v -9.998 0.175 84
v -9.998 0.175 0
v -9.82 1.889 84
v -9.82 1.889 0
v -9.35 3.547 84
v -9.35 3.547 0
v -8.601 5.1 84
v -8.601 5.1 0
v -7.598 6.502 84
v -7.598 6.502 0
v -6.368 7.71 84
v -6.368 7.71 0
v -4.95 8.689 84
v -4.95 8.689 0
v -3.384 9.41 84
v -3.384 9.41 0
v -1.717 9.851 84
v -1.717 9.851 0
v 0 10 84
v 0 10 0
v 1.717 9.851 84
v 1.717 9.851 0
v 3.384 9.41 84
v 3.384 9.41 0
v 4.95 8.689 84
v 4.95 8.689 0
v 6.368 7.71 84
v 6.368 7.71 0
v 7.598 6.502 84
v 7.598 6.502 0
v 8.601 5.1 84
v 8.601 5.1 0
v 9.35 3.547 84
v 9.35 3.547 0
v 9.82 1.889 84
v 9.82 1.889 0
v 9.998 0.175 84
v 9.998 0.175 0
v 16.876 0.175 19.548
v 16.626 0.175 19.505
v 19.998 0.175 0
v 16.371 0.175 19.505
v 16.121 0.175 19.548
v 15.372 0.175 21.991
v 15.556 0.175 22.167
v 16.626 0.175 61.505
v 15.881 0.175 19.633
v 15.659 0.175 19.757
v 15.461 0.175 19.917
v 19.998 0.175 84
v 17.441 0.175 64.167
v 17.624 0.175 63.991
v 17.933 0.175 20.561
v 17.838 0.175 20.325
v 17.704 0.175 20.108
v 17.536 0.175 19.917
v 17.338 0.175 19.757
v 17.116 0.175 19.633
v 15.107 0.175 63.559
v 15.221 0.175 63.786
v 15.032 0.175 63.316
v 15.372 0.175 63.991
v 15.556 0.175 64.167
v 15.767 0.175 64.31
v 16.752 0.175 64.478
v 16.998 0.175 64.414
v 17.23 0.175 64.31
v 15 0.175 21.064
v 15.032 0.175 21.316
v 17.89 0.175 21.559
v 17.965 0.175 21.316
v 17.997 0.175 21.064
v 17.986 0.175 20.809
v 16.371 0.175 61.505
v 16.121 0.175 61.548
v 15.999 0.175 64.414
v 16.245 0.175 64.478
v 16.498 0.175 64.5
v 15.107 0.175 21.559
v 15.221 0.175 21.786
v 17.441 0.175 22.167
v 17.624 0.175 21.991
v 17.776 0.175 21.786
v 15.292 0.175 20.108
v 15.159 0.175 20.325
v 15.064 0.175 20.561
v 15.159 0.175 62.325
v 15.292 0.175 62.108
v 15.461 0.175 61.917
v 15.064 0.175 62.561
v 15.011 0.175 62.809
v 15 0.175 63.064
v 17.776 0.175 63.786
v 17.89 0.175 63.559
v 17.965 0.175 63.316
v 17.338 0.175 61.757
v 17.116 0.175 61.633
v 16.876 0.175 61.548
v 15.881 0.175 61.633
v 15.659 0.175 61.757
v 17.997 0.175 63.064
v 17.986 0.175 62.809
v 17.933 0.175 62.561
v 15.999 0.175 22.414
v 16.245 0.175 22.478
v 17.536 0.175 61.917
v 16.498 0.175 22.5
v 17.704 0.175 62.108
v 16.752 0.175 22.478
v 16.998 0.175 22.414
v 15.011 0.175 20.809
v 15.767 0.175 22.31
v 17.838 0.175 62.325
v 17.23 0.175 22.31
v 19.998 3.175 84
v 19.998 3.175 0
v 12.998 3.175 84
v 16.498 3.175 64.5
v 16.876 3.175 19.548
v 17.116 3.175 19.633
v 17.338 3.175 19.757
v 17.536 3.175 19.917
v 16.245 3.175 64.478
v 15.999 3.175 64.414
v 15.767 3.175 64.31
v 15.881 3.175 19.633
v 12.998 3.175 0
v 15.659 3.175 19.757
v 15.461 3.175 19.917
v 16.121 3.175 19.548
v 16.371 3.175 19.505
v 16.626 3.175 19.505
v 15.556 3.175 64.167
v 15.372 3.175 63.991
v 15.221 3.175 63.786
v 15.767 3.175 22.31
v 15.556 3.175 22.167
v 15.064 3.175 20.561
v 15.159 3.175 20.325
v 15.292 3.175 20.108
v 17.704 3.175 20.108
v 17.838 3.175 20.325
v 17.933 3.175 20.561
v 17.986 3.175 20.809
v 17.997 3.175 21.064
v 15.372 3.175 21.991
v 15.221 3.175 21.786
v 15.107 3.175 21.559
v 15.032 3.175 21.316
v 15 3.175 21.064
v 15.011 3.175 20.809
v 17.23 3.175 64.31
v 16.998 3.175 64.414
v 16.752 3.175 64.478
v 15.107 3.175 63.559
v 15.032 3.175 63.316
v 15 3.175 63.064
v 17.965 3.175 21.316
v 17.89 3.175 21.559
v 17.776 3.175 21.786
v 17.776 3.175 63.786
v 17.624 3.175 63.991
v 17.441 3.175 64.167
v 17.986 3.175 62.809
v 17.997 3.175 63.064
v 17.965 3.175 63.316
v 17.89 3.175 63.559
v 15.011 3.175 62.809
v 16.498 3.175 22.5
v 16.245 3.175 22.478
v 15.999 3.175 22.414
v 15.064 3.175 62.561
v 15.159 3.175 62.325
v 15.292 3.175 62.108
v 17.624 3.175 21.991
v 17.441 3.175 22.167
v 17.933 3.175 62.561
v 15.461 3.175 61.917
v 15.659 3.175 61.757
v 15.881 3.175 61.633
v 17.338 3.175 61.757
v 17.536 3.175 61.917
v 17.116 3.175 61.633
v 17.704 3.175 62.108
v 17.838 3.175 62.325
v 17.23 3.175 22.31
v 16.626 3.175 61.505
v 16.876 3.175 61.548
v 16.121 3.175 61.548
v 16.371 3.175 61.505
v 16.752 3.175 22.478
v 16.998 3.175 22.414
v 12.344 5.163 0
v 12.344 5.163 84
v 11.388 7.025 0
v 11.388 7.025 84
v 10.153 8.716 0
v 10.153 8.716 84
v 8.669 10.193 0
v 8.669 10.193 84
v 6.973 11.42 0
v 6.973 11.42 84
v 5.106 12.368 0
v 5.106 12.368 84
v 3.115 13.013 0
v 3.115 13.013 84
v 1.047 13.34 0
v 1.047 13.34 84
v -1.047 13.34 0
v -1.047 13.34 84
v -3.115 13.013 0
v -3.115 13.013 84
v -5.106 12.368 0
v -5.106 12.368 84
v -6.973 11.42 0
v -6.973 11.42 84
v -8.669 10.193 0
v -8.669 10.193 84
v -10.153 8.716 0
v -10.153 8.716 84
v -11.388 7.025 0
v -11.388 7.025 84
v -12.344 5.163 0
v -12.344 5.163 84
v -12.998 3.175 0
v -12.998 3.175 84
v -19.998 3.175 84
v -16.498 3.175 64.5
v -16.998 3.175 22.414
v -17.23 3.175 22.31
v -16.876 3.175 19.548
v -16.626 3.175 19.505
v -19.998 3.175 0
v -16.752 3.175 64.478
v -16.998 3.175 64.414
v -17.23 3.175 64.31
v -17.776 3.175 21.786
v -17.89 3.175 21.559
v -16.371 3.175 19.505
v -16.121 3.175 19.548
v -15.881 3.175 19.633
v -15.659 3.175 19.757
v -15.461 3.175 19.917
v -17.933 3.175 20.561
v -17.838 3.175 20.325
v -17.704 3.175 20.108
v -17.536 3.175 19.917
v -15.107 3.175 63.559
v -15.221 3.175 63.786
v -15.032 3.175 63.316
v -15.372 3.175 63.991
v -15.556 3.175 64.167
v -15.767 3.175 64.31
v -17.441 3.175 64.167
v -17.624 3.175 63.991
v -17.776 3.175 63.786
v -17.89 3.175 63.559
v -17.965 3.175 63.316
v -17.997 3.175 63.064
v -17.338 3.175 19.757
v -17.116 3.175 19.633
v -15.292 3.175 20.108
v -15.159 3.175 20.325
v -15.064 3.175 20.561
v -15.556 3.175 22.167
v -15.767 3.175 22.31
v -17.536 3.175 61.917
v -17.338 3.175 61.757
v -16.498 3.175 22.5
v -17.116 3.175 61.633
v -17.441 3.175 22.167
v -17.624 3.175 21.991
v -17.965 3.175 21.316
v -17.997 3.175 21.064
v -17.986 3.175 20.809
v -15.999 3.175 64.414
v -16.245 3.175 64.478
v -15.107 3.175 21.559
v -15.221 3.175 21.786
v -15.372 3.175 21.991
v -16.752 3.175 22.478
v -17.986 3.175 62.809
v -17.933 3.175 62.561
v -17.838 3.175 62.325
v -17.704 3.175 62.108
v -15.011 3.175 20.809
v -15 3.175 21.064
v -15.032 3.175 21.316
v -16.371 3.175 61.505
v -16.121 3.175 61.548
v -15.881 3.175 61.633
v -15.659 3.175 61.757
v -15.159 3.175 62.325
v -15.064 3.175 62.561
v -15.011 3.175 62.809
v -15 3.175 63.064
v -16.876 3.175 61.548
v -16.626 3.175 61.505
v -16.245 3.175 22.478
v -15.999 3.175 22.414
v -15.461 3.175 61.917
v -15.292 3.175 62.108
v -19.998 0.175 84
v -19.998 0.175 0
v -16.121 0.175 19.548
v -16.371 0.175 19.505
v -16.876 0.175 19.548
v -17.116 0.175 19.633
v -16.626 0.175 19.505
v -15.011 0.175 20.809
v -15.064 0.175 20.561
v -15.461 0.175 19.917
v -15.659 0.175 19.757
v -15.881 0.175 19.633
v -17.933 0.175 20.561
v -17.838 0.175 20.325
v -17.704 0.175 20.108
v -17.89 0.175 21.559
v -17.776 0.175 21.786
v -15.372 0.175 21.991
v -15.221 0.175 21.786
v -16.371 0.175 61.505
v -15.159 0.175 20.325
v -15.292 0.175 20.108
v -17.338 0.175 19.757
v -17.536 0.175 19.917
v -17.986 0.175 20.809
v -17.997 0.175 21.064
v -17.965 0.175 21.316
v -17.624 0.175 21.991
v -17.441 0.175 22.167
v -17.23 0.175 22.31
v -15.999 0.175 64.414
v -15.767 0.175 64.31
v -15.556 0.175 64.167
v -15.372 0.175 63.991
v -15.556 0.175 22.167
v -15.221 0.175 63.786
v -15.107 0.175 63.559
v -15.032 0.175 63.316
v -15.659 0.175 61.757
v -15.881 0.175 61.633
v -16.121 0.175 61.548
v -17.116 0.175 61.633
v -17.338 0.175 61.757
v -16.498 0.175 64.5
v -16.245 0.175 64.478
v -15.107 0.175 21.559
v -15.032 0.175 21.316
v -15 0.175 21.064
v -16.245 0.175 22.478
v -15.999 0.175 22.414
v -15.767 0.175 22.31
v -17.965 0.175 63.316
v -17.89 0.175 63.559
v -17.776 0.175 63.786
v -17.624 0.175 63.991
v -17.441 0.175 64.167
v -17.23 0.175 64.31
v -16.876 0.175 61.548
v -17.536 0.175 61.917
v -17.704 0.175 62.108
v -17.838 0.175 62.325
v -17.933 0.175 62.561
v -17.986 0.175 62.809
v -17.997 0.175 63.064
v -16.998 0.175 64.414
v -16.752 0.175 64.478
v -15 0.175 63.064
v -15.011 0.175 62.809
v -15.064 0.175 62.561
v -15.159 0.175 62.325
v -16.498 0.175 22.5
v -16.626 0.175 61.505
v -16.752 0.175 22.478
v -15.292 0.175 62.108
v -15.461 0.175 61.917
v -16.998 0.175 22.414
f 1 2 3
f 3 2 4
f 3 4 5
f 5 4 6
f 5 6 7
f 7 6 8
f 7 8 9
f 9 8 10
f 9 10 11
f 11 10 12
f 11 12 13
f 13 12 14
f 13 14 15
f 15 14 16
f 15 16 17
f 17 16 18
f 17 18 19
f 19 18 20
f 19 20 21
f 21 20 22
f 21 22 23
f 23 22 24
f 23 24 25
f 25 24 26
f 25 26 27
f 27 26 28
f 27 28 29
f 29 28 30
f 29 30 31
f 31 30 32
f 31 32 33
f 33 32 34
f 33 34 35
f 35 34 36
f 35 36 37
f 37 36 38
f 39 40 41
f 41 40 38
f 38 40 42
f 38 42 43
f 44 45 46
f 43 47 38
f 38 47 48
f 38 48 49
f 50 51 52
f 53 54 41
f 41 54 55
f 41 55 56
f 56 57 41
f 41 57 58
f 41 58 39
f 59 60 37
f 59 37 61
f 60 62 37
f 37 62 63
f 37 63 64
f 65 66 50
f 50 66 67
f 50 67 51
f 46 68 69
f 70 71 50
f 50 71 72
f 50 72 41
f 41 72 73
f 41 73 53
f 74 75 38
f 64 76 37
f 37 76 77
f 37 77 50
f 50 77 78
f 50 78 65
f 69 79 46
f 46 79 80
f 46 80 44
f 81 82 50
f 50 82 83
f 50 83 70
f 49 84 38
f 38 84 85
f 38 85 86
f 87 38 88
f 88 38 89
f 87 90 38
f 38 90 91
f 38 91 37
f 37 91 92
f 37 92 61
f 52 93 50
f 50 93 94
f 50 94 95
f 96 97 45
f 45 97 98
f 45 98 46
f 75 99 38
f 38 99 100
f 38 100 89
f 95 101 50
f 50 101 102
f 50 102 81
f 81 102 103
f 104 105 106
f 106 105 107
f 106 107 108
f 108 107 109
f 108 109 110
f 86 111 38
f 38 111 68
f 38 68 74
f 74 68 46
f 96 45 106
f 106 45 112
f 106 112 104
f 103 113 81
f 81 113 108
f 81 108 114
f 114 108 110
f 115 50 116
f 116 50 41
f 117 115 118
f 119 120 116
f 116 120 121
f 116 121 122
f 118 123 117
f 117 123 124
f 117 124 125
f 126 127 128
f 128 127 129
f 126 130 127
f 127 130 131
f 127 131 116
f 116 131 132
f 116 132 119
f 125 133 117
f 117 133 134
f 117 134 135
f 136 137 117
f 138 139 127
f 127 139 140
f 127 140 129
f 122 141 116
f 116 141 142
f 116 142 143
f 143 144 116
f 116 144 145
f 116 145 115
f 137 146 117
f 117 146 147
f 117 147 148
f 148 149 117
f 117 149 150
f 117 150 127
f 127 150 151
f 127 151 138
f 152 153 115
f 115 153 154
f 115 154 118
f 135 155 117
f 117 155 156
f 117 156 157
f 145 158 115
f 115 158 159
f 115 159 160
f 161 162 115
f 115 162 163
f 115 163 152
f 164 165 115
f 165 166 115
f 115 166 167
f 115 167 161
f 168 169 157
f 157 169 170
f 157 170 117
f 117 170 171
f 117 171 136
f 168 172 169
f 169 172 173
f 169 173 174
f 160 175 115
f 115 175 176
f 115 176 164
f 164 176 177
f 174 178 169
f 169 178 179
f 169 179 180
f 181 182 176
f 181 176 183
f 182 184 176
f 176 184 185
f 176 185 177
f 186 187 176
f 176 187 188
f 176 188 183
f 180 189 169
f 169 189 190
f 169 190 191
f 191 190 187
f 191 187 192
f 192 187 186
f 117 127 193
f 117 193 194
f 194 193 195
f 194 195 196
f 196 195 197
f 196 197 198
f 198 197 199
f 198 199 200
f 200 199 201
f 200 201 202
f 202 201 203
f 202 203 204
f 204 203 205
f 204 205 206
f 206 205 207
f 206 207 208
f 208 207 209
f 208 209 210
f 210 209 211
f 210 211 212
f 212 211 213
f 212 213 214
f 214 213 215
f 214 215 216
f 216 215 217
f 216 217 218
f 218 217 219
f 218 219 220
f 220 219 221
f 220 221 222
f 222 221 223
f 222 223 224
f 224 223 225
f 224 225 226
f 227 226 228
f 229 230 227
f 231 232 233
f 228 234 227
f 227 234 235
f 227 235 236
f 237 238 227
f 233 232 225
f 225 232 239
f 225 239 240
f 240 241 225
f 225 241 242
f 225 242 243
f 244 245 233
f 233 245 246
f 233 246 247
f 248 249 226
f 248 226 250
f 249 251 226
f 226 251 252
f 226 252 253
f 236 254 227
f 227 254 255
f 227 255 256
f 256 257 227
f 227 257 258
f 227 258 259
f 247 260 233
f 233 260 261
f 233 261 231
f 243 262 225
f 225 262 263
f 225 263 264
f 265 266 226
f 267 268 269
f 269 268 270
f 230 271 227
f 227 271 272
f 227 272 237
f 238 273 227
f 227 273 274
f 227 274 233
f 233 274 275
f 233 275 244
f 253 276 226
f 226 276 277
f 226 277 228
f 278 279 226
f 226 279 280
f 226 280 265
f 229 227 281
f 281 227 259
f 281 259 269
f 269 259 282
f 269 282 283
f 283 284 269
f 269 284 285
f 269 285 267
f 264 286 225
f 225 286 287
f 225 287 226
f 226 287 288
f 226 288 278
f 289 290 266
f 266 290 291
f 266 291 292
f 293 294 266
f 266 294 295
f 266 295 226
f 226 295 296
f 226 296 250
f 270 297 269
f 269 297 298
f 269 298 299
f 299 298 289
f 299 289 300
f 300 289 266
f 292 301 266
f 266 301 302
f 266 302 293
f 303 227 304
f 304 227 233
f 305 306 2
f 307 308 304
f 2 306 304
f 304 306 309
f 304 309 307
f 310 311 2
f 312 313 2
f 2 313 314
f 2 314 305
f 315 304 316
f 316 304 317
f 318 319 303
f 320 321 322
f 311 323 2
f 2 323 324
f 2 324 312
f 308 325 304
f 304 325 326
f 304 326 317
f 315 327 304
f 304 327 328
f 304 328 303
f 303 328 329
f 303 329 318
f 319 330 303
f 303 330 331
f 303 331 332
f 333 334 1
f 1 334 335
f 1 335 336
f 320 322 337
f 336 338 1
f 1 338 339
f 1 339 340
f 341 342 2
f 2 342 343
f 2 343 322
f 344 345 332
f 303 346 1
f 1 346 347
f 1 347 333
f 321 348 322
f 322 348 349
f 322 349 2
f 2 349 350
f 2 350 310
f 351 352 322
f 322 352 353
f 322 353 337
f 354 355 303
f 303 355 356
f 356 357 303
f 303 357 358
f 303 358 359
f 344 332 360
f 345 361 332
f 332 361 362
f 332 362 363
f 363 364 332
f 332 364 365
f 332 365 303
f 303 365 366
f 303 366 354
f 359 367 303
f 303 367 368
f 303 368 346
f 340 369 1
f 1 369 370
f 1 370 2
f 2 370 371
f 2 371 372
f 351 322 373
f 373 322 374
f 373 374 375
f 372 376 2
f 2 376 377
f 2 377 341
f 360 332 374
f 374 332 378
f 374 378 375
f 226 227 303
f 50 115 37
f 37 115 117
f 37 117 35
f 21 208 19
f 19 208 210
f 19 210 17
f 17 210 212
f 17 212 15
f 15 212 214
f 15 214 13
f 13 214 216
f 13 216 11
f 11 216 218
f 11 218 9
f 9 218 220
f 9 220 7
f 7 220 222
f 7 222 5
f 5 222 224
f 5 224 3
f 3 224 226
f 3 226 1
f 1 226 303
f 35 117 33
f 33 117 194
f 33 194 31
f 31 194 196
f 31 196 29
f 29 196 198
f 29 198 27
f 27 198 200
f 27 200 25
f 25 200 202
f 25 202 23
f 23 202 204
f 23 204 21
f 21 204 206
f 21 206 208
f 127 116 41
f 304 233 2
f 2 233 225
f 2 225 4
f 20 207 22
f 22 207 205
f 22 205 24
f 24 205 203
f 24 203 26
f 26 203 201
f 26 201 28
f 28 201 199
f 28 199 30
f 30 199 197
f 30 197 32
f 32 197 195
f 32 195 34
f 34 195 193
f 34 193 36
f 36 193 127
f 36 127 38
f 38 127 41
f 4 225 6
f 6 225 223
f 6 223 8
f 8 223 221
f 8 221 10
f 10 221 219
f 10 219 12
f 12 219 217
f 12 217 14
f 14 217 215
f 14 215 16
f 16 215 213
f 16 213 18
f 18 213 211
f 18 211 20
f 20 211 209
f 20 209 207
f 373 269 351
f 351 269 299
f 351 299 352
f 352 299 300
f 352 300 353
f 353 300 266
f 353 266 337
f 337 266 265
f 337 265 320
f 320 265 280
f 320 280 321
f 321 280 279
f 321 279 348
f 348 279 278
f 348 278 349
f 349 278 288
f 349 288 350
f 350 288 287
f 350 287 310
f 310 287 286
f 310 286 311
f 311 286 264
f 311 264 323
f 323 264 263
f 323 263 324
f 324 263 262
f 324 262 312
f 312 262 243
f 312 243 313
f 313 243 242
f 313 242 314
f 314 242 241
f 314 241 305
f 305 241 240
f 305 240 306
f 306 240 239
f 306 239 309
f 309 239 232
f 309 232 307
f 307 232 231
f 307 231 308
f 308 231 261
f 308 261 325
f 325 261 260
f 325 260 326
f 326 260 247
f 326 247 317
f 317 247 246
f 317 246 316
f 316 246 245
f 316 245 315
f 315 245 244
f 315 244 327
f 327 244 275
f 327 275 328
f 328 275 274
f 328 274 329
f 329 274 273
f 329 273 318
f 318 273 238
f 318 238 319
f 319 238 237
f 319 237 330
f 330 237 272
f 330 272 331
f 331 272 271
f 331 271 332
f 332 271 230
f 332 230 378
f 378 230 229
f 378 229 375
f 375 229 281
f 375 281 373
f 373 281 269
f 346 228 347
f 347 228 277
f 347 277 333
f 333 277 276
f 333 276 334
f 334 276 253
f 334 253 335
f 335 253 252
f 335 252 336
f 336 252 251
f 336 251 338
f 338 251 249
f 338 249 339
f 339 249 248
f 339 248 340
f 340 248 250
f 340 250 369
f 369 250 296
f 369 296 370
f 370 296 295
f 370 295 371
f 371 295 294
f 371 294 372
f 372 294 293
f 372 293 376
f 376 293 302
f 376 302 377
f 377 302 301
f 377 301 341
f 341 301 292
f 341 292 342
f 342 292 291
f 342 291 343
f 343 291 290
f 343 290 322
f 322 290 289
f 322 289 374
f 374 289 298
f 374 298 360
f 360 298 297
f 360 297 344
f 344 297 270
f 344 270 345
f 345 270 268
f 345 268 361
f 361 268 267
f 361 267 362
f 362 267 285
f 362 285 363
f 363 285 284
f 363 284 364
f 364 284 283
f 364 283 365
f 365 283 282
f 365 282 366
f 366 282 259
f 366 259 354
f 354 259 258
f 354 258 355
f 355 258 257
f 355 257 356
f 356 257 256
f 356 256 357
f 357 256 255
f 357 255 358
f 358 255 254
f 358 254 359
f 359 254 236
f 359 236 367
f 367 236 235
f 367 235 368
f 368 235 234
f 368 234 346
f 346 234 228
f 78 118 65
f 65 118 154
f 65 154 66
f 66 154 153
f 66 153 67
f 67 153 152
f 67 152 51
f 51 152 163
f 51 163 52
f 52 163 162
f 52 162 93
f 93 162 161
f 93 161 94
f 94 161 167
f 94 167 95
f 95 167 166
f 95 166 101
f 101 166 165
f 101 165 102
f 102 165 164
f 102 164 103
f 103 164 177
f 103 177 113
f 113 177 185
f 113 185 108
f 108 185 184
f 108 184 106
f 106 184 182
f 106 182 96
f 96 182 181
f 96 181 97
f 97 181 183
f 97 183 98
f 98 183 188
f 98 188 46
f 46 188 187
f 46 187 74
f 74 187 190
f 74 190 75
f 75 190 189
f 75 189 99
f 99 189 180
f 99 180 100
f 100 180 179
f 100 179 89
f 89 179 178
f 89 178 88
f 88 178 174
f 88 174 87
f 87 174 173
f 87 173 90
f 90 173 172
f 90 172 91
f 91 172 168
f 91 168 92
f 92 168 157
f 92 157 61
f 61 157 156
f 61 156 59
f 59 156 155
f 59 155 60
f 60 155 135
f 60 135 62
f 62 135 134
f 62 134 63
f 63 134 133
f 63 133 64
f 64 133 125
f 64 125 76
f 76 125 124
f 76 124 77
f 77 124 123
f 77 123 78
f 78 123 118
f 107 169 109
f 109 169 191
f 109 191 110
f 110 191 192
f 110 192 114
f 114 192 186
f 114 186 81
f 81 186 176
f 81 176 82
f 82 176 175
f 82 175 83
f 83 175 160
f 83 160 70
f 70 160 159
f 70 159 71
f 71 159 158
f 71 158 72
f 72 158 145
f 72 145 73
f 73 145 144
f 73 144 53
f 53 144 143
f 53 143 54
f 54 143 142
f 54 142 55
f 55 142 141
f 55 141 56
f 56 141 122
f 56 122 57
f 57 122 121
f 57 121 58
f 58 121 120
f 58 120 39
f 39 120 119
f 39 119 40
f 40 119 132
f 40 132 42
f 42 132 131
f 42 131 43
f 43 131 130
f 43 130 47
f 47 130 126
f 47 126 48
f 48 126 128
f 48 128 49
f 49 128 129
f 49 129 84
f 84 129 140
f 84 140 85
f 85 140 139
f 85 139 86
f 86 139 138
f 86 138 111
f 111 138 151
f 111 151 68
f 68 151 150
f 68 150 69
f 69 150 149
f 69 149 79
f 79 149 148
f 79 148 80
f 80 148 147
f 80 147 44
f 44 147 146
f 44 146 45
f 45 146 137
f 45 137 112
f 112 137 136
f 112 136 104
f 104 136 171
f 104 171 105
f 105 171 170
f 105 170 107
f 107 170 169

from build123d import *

# Parameters (mm, degrees)
EXTRUDE_1_DEPTH     = 84
SKETCH_2_R          = 1.5
CUT_EXTRUDE_1_DEPTH = 87.948842416


with BuildPart() as part:
    # Эскиз1 → Бобышка-Вытянуть1 (new body)
    with BuildSketch(Plane.XY):
        with BuildLine():
            Line((-9.998476952, 0.174524064), (-19.998476952, 0.174524064))
            Line((-19.998476952, 0.174524064), (-19.998476952, 3.174524064))
            Line((-19.998476952, 3.174524064), (-12.998476952, 3.174524064))
            ThreePointArc((-12.998476952, 3.174524064), (0, 13.380508439), (12.998476952, 3.174524064))
            Line((12.998476952, 3.174524064), (19.998476952, 3.174524064))
            Line((19.998476952, 3.174524064), (19.998476952, 0.174524064))
            Line((19.998476952, 0.174524064), (9.998476952, 0.174524064))
            ThreePointArc((9.998476952, 0.174524064), (7.009092643, 7.132504492), (0, 10))
            ThreePointArc((0, 10), (-7.009092643, 7.132504492), (-9.998476952, 0.174524064))
        make_face()
    extrude(amount=EXTRUDE_1_DEPTH)

    # Эскиз2 → Вырез-Вытянуть1 (cut, through all)
    with BuildSketch(Plane(origin=(0, 3.174524064, 0), x_dir=(1, 0, 0), z_dir=(0, 1, 0))):
        with Locations(Location((-16.498476952, -21, 0), (0, 0, 270))):
            Circle(SKETCH_2_R)
        with Locations(Location((-16.498476952, -63, 0), (0, 0, 270))):
            Circle(SKETCH_2_R)
        with Locations(Location((16.498476952, -21, 0), (0, 0, 270))):
            Circle(SKETCH_2_R)
        with Locations(Location((16.498476952, -63, 0), (0, 0, 270))):
            Circle(SKETCH_2_R)
    extrude(amount=-CUT_EXTRUDE_1_DEPTH, mode=Mode.SUBTRACT)


solid = part.part
